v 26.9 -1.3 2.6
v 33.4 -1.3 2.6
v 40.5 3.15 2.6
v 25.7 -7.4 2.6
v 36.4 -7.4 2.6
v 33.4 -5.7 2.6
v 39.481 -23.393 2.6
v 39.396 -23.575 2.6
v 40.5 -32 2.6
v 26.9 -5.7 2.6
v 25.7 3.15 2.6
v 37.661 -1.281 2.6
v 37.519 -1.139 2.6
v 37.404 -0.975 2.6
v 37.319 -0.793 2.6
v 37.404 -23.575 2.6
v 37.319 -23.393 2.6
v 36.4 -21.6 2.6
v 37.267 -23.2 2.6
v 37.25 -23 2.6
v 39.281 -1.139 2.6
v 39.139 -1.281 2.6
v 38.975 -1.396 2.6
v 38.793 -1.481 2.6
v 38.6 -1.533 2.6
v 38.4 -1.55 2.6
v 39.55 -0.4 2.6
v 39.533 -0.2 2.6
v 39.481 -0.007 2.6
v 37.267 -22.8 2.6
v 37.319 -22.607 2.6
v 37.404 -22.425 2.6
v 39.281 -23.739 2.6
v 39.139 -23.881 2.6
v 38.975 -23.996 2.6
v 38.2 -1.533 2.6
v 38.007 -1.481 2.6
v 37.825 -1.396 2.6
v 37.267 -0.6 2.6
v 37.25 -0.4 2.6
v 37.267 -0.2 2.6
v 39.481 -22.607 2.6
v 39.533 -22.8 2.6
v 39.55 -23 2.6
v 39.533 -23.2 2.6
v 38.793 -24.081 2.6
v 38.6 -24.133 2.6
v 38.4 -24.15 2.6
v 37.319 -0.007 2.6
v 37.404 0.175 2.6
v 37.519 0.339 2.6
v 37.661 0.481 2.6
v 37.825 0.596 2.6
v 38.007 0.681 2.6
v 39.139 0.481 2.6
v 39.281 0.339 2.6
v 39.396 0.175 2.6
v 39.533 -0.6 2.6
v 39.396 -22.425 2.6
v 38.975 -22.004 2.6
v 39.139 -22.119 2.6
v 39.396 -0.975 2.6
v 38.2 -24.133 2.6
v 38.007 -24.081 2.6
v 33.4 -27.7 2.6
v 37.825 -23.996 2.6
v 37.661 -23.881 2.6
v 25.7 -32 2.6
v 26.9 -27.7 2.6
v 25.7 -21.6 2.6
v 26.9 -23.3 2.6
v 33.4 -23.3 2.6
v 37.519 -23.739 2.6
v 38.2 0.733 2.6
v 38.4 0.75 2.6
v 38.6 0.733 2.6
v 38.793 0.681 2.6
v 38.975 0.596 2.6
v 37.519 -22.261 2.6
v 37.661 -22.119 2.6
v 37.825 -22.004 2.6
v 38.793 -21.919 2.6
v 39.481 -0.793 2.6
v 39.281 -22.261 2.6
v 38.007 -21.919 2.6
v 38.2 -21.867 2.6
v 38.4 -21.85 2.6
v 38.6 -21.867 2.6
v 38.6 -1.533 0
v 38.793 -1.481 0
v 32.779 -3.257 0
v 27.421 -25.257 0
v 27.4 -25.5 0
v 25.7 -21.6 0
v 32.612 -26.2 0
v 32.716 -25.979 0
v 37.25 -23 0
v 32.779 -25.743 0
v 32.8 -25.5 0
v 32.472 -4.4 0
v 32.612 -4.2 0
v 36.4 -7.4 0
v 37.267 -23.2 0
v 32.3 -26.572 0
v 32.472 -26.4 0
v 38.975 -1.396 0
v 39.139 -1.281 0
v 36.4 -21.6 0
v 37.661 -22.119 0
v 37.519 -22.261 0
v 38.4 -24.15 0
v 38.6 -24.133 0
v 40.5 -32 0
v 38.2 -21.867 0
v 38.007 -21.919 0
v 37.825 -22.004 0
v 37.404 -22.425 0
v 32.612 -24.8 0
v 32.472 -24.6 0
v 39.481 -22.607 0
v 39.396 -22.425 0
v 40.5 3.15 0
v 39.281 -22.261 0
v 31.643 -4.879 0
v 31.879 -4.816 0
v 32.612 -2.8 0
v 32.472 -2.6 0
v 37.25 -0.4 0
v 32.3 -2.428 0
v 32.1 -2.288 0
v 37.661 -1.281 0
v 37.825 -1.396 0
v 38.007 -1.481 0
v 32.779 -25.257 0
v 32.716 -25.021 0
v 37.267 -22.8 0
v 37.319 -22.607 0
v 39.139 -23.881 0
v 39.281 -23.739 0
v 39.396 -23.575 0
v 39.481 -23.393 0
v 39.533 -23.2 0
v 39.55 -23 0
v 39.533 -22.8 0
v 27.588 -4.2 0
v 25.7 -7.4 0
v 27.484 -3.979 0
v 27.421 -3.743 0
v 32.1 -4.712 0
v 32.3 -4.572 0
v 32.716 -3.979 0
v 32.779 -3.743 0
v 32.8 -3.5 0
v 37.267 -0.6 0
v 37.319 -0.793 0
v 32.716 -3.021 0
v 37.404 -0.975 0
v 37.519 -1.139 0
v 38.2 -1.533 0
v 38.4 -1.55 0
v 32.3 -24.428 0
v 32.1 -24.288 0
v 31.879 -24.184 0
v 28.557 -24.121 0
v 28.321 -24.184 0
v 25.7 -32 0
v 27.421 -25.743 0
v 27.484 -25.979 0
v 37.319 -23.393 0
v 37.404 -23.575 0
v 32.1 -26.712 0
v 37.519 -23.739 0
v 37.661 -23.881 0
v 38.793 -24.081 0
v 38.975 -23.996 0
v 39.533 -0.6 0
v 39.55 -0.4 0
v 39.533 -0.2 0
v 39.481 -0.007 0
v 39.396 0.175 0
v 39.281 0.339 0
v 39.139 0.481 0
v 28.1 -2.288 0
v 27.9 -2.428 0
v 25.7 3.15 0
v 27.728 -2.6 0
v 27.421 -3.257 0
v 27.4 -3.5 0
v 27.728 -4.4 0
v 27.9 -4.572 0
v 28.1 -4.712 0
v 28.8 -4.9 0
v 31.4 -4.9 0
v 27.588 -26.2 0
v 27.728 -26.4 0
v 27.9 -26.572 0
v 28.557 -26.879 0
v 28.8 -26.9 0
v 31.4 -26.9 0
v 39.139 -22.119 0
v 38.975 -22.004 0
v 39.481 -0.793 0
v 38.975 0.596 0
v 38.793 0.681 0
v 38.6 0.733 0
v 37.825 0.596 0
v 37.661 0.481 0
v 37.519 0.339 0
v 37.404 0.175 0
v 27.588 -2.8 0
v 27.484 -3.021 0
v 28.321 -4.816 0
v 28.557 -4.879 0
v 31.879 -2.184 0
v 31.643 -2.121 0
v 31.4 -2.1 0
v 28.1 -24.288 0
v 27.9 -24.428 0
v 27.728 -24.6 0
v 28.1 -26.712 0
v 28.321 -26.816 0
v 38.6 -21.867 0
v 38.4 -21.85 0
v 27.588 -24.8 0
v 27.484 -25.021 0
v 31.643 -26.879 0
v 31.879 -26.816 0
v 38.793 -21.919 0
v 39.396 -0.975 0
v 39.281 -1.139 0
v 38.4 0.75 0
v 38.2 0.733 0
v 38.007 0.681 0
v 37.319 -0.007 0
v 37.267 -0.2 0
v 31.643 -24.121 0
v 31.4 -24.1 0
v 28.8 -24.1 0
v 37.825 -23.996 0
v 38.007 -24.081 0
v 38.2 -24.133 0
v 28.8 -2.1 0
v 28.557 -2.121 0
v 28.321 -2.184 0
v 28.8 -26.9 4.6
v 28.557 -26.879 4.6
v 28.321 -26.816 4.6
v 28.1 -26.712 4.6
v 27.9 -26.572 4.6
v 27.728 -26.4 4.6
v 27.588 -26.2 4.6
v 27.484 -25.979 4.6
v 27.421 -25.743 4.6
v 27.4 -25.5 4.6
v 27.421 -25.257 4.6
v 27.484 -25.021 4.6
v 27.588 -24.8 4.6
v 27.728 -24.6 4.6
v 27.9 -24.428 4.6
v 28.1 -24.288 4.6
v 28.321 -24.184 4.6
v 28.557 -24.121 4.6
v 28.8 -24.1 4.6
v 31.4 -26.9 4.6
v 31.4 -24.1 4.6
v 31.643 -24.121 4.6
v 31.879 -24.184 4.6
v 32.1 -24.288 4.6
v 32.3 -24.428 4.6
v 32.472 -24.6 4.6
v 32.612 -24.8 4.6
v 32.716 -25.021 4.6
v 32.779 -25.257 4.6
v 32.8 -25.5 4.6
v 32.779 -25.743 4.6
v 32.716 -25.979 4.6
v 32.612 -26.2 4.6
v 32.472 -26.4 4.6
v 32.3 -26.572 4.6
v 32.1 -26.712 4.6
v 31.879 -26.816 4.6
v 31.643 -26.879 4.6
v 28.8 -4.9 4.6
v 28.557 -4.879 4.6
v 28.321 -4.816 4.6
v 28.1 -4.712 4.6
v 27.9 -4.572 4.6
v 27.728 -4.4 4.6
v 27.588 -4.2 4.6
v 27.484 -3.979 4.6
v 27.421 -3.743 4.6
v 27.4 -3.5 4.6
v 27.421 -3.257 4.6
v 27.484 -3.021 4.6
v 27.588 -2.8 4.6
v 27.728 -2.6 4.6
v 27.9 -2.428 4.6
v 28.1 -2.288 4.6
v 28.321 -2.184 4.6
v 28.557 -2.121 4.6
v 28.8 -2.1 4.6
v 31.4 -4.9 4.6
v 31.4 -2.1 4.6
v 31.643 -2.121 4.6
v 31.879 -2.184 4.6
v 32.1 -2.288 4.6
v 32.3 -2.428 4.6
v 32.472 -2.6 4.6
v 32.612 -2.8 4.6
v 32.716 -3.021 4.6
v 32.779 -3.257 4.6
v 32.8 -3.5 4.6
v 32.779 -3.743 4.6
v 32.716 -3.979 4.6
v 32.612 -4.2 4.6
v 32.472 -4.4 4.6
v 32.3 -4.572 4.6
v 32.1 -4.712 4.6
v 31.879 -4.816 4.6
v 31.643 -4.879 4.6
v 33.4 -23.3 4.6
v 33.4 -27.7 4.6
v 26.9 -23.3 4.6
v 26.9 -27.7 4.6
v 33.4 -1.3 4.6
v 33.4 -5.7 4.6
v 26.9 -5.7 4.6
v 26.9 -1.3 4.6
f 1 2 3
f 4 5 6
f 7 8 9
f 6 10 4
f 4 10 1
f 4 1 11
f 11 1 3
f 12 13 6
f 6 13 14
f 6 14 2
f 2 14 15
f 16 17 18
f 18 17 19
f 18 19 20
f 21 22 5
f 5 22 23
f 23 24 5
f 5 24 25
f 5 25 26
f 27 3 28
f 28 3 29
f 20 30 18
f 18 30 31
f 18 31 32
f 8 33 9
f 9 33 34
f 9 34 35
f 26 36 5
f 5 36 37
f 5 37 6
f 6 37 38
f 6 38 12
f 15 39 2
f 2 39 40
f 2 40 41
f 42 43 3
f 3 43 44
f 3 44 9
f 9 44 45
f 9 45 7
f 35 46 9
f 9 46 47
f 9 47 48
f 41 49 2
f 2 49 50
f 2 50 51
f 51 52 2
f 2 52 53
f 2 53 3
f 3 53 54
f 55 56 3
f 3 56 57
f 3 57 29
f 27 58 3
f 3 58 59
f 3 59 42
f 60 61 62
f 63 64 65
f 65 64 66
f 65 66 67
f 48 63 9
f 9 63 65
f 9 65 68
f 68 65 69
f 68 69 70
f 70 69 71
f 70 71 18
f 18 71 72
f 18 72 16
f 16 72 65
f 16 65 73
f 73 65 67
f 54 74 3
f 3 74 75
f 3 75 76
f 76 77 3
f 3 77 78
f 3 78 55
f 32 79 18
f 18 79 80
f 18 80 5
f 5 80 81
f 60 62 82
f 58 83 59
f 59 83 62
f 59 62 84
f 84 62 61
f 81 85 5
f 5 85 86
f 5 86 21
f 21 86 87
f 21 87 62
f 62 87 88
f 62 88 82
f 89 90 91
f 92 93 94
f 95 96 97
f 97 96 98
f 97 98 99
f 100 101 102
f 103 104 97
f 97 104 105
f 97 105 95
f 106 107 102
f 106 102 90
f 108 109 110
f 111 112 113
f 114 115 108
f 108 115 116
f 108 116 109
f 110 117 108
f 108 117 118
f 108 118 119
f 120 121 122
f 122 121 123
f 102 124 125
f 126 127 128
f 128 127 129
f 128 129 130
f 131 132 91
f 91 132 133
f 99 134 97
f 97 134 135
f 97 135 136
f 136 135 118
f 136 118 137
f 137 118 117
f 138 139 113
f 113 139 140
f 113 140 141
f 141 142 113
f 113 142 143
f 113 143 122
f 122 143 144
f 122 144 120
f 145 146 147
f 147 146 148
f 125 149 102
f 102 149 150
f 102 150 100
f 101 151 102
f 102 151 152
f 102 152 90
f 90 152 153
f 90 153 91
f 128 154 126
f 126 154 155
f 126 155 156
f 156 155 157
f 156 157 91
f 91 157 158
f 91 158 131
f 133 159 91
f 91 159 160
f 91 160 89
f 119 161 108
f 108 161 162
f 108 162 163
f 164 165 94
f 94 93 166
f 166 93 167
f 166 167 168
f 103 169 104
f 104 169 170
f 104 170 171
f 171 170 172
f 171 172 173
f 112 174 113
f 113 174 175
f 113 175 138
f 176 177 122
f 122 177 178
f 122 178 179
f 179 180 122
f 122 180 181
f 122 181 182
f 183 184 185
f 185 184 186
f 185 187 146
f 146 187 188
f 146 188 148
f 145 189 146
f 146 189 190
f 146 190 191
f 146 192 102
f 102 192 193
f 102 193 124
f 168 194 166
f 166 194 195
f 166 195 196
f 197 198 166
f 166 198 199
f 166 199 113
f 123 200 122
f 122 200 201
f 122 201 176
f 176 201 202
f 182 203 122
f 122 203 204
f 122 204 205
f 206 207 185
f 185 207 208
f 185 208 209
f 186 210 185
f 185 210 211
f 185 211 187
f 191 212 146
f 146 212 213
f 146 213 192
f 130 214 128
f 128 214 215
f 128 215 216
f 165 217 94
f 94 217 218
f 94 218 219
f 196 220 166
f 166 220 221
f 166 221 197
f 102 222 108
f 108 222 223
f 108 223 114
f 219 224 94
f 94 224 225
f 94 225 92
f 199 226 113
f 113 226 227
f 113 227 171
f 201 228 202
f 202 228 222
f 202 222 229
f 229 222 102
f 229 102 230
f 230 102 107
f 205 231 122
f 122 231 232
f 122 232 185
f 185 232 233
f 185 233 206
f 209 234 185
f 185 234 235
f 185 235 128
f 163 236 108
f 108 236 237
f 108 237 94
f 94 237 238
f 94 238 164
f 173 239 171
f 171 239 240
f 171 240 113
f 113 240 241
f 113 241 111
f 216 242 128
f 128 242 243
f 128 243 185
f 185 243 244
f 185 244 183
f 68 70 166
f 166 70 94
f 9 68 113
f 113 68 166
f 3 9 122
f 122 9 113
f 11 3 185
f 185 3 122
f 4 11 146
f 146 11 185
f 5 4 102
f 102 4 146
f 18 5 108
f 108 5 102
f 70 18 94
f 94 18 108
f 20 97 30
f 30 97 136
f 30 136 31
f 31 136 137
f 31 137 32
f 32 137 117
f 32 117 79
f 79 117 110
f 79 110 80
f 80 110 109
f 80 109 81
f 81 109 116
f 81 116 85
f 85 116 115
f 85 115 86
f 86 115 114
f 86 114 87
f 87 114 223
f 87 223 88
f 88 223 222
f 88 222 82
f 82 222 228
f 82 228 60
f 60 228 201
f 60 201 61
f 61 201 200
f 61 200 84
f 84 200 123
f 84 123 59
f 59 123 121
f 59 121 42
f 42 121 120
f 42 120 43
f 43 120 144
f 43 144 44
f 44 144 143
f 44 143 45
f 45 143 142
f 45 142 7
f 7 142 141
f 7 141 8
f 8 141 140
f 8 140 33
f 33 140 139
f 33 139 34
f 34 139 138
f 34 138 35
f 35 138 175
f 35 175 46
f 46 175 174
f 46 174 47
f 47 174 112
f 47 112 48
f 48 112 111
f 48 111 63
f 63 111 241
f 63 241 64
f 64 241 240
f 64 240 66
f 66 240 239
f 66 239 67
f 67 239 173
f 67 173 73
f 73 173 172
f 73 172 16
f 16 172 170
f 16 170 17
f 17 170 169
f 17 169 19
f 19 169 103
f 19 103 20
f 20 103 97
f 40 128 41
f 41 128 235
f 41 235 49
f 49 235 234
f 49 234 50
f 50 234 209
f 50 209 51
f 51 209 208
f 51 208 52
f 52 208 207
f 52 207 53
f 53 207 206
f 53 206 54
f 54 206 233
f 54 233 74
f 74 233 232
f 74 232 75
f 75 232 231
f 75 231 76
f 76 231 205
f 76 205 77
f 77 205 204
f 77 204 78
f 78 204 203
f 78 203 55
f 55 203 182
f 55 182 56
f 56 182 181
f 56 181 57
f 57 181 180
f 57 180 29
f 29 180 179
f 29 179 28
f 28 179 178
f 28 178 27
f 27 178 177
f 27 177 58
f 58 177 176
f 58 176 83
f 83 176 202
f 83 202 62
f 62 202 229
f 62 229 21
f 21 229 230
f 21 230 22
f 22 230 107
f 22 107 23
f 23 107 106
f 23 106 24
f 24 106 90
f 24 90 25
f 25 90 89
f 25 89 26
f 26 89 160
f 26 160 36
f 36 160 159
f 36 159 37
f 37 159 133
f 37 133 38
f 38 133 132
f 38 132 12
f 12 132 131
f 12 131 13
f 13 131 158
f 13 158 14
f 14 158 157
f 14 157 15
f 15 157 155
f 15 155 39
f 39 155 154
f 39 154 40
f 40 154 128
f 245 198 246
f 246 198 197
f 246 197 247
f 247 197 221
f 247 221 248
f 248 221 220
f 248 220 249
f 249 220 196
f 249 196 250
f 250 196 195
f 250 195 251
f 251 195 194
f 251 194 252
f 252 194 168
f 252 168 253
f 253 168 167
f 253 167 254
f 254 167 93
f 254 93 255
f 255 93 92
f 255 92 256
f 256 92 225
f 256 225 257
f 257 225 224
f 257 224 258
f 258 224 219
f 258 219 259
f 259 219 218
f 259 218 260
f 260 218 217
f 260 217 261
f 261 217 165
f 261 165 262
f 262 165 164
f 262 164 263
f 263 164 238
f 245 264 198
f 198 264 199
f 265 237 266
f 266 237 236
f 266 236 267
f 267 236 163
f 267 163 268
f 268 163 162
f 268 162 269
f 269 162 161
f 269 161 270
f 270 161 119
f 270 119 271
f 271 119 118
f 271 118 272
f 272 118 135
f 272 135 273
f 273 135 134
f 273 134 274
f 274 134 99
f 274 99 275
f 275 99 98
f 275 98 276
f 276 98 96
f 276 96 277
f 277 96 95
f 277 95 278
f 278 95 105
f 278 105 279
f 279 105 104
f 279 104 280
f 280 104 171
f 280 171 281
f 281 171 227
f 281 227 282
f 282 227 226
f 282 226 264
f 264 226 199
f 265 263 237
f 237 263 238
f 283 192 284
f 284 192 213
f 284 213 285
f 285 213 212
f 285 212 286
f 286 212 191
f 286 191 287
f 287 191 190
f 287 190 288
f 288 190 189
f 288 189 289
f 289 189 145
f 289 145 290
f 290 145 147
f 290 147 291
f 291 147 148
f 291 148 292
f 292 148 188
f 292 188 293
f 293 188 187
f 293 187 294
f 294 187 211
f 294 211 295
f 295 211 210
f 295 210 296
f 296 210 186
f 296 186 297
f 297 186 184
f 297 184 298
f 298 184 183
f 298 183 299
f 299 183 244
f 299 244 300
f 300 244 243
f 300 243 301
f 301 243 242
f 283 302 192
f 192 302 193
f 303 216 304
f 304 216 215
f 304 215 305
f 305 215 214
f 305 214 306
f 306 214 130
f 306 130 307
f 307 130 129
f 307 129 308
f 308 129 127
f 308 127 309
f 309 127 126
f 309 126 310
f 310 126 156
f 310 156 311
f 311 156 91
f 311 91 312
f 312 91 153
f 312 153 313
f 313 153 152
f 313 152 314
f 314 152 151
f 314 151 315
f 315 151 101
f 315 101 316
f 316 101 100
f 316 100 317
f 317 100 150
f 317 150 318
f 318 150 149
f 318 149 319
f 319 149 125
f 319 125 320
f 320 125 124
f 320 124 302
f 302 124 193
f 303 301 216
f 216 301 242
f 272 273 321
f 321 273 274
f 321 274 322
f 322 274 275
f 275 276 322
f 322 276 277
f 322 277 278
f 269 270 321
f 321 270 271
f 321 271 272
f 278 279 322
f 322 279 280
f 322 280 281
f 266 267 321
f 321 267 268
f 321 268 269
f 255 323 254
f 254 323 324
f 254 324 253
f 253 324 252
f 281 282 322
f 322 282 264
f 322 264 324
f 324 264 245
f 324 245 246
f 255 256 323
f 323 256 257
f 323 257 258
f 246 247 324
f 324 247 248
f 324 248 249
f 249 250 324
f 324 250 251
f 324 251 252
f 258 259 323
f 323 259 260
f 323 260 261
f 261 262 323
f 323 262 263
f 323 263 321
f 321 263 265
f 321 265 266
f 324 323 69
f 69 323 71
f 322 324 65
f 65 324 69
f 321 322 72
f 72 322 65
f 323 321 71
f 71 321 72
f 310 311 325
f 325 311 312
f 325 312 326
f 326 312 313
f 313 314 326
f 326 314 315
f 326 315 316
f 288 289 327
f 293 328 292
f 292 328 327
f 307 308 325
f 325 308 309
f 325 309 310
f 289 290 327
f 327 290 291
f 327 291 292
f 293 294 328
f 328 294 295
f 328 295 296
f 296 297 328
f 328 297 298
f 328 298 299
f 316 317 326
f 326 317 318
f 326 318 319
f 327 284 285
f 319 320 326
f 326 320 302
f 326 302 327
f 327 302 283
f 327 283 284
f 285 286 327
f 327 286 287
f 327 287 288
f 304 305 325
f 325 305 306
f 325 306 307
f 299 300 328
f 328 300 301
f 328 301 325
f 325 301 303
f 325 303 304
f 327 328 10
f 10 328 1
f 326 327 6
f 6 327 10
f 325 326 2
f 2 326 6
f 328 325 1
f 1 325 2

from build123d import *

# Parameters (mm, degrees)
PROFILE_R         = 1.15
EXTRUDE_248_DEPTH = 2.6
EXTRUDE_START     = 2.6
PROFILE_2_W       = 6.5
PROFILE_2_H       = 4.4
EXTRUDE_349_DEPTH = 2


with BuildPart() as part:
    # profile → Extrude 248 (new body)
    with BuildSketch(Plane.XY):
        Polygon((25.7, -32), (40.5, -32), (40.5, 3.15), (25.7, 3.15), (25.7, -7.4), (36.4, -7.4), (36.4, -21.6), (25.7, -21.6), align=None)
        with Locations((38.4, -23)):
            Circle(PROFILE_R, mode=Mode.SUBTRACT)
        with Locations((38.4, -0.4)):
            Circle(PROFILE_R, mode=Mode.SUBTRACT)
        with BuildLine():
            Line((28.8, -26.9), (31.4, -26.9))
            ThreePointArc((31.4, -26.9), (32.8, -25.5), (31.4, -24.1))
            Line((31.4, -24.1), (28.8, -24.1))
            ThreePointArc((28.8, -24.1), (27.4, -25.5), (28.8, -26.9))
        make_face(mode=Mode.SUBTRACT)
        with BuildLine():
            Line((28.8, -4.9), (31.4, -4.9))
            ThreePointArc((31.4, -4.9), (32.8, -3.5), (31.4, -2.1))
            Line((31.4, -2.1), (28.8, -2.1))
            ThreePointArc((28.8, -2.1), (27.4, -3.5), (28.8, -4.9))
        make_face(mode=Mode.SUBTRACT)
    extrude(amount=EXTRUDE_248_DEPTH)

    # profile 2 → Extrude 349 (add)
    # profile 1 of 2: a face of its own
    with BuildSketch(Plane.XY.offset(EXTRUDE_START)):
        with Locations((30.15, -25.5)):
            Rectangle(PROFILE_2_W, PROFILE_2_H)
        with BuildLine():
            Line((28.8, -26.9), (31.4, -26.9))
            ThreePointArc((31.4, -26.9), (32.8, -25.5), (31.4, -24.1))
            Line((31.4, -24.1), (28.8, -24.1))
            ThreePointArc((28.8, -24.1), (27.4, -25.5), (28.8, -26.9))
        make_face(mode=Mode.SUBTRACT)
    # profile 2 of 2: a face of its own
    with BuildSketch(Plane.XY.offset(EXTRUDE_START)):
        with Locations((30.15, -3.5)):
            Rectangle(PROFILE_2_W, PROFILE_2_H)
        with BuildLine():
            Line((28.8, -4.9), (31.4, -4.9))
            ThreePointArc((31.4, -4.9), (32.8, -3.5), (31.4, -2.1))
            Line((31.4, -2.1), (28.8, -2.1))
            ThreePointArc((28.8, -2.1), (27.4, -3.5), (28.8, -4.9))
        make_face(mode=Mode.SUBTRACT)
    extrude(amount=EXTRUDE_349_DEPTH)


solid = part.part
